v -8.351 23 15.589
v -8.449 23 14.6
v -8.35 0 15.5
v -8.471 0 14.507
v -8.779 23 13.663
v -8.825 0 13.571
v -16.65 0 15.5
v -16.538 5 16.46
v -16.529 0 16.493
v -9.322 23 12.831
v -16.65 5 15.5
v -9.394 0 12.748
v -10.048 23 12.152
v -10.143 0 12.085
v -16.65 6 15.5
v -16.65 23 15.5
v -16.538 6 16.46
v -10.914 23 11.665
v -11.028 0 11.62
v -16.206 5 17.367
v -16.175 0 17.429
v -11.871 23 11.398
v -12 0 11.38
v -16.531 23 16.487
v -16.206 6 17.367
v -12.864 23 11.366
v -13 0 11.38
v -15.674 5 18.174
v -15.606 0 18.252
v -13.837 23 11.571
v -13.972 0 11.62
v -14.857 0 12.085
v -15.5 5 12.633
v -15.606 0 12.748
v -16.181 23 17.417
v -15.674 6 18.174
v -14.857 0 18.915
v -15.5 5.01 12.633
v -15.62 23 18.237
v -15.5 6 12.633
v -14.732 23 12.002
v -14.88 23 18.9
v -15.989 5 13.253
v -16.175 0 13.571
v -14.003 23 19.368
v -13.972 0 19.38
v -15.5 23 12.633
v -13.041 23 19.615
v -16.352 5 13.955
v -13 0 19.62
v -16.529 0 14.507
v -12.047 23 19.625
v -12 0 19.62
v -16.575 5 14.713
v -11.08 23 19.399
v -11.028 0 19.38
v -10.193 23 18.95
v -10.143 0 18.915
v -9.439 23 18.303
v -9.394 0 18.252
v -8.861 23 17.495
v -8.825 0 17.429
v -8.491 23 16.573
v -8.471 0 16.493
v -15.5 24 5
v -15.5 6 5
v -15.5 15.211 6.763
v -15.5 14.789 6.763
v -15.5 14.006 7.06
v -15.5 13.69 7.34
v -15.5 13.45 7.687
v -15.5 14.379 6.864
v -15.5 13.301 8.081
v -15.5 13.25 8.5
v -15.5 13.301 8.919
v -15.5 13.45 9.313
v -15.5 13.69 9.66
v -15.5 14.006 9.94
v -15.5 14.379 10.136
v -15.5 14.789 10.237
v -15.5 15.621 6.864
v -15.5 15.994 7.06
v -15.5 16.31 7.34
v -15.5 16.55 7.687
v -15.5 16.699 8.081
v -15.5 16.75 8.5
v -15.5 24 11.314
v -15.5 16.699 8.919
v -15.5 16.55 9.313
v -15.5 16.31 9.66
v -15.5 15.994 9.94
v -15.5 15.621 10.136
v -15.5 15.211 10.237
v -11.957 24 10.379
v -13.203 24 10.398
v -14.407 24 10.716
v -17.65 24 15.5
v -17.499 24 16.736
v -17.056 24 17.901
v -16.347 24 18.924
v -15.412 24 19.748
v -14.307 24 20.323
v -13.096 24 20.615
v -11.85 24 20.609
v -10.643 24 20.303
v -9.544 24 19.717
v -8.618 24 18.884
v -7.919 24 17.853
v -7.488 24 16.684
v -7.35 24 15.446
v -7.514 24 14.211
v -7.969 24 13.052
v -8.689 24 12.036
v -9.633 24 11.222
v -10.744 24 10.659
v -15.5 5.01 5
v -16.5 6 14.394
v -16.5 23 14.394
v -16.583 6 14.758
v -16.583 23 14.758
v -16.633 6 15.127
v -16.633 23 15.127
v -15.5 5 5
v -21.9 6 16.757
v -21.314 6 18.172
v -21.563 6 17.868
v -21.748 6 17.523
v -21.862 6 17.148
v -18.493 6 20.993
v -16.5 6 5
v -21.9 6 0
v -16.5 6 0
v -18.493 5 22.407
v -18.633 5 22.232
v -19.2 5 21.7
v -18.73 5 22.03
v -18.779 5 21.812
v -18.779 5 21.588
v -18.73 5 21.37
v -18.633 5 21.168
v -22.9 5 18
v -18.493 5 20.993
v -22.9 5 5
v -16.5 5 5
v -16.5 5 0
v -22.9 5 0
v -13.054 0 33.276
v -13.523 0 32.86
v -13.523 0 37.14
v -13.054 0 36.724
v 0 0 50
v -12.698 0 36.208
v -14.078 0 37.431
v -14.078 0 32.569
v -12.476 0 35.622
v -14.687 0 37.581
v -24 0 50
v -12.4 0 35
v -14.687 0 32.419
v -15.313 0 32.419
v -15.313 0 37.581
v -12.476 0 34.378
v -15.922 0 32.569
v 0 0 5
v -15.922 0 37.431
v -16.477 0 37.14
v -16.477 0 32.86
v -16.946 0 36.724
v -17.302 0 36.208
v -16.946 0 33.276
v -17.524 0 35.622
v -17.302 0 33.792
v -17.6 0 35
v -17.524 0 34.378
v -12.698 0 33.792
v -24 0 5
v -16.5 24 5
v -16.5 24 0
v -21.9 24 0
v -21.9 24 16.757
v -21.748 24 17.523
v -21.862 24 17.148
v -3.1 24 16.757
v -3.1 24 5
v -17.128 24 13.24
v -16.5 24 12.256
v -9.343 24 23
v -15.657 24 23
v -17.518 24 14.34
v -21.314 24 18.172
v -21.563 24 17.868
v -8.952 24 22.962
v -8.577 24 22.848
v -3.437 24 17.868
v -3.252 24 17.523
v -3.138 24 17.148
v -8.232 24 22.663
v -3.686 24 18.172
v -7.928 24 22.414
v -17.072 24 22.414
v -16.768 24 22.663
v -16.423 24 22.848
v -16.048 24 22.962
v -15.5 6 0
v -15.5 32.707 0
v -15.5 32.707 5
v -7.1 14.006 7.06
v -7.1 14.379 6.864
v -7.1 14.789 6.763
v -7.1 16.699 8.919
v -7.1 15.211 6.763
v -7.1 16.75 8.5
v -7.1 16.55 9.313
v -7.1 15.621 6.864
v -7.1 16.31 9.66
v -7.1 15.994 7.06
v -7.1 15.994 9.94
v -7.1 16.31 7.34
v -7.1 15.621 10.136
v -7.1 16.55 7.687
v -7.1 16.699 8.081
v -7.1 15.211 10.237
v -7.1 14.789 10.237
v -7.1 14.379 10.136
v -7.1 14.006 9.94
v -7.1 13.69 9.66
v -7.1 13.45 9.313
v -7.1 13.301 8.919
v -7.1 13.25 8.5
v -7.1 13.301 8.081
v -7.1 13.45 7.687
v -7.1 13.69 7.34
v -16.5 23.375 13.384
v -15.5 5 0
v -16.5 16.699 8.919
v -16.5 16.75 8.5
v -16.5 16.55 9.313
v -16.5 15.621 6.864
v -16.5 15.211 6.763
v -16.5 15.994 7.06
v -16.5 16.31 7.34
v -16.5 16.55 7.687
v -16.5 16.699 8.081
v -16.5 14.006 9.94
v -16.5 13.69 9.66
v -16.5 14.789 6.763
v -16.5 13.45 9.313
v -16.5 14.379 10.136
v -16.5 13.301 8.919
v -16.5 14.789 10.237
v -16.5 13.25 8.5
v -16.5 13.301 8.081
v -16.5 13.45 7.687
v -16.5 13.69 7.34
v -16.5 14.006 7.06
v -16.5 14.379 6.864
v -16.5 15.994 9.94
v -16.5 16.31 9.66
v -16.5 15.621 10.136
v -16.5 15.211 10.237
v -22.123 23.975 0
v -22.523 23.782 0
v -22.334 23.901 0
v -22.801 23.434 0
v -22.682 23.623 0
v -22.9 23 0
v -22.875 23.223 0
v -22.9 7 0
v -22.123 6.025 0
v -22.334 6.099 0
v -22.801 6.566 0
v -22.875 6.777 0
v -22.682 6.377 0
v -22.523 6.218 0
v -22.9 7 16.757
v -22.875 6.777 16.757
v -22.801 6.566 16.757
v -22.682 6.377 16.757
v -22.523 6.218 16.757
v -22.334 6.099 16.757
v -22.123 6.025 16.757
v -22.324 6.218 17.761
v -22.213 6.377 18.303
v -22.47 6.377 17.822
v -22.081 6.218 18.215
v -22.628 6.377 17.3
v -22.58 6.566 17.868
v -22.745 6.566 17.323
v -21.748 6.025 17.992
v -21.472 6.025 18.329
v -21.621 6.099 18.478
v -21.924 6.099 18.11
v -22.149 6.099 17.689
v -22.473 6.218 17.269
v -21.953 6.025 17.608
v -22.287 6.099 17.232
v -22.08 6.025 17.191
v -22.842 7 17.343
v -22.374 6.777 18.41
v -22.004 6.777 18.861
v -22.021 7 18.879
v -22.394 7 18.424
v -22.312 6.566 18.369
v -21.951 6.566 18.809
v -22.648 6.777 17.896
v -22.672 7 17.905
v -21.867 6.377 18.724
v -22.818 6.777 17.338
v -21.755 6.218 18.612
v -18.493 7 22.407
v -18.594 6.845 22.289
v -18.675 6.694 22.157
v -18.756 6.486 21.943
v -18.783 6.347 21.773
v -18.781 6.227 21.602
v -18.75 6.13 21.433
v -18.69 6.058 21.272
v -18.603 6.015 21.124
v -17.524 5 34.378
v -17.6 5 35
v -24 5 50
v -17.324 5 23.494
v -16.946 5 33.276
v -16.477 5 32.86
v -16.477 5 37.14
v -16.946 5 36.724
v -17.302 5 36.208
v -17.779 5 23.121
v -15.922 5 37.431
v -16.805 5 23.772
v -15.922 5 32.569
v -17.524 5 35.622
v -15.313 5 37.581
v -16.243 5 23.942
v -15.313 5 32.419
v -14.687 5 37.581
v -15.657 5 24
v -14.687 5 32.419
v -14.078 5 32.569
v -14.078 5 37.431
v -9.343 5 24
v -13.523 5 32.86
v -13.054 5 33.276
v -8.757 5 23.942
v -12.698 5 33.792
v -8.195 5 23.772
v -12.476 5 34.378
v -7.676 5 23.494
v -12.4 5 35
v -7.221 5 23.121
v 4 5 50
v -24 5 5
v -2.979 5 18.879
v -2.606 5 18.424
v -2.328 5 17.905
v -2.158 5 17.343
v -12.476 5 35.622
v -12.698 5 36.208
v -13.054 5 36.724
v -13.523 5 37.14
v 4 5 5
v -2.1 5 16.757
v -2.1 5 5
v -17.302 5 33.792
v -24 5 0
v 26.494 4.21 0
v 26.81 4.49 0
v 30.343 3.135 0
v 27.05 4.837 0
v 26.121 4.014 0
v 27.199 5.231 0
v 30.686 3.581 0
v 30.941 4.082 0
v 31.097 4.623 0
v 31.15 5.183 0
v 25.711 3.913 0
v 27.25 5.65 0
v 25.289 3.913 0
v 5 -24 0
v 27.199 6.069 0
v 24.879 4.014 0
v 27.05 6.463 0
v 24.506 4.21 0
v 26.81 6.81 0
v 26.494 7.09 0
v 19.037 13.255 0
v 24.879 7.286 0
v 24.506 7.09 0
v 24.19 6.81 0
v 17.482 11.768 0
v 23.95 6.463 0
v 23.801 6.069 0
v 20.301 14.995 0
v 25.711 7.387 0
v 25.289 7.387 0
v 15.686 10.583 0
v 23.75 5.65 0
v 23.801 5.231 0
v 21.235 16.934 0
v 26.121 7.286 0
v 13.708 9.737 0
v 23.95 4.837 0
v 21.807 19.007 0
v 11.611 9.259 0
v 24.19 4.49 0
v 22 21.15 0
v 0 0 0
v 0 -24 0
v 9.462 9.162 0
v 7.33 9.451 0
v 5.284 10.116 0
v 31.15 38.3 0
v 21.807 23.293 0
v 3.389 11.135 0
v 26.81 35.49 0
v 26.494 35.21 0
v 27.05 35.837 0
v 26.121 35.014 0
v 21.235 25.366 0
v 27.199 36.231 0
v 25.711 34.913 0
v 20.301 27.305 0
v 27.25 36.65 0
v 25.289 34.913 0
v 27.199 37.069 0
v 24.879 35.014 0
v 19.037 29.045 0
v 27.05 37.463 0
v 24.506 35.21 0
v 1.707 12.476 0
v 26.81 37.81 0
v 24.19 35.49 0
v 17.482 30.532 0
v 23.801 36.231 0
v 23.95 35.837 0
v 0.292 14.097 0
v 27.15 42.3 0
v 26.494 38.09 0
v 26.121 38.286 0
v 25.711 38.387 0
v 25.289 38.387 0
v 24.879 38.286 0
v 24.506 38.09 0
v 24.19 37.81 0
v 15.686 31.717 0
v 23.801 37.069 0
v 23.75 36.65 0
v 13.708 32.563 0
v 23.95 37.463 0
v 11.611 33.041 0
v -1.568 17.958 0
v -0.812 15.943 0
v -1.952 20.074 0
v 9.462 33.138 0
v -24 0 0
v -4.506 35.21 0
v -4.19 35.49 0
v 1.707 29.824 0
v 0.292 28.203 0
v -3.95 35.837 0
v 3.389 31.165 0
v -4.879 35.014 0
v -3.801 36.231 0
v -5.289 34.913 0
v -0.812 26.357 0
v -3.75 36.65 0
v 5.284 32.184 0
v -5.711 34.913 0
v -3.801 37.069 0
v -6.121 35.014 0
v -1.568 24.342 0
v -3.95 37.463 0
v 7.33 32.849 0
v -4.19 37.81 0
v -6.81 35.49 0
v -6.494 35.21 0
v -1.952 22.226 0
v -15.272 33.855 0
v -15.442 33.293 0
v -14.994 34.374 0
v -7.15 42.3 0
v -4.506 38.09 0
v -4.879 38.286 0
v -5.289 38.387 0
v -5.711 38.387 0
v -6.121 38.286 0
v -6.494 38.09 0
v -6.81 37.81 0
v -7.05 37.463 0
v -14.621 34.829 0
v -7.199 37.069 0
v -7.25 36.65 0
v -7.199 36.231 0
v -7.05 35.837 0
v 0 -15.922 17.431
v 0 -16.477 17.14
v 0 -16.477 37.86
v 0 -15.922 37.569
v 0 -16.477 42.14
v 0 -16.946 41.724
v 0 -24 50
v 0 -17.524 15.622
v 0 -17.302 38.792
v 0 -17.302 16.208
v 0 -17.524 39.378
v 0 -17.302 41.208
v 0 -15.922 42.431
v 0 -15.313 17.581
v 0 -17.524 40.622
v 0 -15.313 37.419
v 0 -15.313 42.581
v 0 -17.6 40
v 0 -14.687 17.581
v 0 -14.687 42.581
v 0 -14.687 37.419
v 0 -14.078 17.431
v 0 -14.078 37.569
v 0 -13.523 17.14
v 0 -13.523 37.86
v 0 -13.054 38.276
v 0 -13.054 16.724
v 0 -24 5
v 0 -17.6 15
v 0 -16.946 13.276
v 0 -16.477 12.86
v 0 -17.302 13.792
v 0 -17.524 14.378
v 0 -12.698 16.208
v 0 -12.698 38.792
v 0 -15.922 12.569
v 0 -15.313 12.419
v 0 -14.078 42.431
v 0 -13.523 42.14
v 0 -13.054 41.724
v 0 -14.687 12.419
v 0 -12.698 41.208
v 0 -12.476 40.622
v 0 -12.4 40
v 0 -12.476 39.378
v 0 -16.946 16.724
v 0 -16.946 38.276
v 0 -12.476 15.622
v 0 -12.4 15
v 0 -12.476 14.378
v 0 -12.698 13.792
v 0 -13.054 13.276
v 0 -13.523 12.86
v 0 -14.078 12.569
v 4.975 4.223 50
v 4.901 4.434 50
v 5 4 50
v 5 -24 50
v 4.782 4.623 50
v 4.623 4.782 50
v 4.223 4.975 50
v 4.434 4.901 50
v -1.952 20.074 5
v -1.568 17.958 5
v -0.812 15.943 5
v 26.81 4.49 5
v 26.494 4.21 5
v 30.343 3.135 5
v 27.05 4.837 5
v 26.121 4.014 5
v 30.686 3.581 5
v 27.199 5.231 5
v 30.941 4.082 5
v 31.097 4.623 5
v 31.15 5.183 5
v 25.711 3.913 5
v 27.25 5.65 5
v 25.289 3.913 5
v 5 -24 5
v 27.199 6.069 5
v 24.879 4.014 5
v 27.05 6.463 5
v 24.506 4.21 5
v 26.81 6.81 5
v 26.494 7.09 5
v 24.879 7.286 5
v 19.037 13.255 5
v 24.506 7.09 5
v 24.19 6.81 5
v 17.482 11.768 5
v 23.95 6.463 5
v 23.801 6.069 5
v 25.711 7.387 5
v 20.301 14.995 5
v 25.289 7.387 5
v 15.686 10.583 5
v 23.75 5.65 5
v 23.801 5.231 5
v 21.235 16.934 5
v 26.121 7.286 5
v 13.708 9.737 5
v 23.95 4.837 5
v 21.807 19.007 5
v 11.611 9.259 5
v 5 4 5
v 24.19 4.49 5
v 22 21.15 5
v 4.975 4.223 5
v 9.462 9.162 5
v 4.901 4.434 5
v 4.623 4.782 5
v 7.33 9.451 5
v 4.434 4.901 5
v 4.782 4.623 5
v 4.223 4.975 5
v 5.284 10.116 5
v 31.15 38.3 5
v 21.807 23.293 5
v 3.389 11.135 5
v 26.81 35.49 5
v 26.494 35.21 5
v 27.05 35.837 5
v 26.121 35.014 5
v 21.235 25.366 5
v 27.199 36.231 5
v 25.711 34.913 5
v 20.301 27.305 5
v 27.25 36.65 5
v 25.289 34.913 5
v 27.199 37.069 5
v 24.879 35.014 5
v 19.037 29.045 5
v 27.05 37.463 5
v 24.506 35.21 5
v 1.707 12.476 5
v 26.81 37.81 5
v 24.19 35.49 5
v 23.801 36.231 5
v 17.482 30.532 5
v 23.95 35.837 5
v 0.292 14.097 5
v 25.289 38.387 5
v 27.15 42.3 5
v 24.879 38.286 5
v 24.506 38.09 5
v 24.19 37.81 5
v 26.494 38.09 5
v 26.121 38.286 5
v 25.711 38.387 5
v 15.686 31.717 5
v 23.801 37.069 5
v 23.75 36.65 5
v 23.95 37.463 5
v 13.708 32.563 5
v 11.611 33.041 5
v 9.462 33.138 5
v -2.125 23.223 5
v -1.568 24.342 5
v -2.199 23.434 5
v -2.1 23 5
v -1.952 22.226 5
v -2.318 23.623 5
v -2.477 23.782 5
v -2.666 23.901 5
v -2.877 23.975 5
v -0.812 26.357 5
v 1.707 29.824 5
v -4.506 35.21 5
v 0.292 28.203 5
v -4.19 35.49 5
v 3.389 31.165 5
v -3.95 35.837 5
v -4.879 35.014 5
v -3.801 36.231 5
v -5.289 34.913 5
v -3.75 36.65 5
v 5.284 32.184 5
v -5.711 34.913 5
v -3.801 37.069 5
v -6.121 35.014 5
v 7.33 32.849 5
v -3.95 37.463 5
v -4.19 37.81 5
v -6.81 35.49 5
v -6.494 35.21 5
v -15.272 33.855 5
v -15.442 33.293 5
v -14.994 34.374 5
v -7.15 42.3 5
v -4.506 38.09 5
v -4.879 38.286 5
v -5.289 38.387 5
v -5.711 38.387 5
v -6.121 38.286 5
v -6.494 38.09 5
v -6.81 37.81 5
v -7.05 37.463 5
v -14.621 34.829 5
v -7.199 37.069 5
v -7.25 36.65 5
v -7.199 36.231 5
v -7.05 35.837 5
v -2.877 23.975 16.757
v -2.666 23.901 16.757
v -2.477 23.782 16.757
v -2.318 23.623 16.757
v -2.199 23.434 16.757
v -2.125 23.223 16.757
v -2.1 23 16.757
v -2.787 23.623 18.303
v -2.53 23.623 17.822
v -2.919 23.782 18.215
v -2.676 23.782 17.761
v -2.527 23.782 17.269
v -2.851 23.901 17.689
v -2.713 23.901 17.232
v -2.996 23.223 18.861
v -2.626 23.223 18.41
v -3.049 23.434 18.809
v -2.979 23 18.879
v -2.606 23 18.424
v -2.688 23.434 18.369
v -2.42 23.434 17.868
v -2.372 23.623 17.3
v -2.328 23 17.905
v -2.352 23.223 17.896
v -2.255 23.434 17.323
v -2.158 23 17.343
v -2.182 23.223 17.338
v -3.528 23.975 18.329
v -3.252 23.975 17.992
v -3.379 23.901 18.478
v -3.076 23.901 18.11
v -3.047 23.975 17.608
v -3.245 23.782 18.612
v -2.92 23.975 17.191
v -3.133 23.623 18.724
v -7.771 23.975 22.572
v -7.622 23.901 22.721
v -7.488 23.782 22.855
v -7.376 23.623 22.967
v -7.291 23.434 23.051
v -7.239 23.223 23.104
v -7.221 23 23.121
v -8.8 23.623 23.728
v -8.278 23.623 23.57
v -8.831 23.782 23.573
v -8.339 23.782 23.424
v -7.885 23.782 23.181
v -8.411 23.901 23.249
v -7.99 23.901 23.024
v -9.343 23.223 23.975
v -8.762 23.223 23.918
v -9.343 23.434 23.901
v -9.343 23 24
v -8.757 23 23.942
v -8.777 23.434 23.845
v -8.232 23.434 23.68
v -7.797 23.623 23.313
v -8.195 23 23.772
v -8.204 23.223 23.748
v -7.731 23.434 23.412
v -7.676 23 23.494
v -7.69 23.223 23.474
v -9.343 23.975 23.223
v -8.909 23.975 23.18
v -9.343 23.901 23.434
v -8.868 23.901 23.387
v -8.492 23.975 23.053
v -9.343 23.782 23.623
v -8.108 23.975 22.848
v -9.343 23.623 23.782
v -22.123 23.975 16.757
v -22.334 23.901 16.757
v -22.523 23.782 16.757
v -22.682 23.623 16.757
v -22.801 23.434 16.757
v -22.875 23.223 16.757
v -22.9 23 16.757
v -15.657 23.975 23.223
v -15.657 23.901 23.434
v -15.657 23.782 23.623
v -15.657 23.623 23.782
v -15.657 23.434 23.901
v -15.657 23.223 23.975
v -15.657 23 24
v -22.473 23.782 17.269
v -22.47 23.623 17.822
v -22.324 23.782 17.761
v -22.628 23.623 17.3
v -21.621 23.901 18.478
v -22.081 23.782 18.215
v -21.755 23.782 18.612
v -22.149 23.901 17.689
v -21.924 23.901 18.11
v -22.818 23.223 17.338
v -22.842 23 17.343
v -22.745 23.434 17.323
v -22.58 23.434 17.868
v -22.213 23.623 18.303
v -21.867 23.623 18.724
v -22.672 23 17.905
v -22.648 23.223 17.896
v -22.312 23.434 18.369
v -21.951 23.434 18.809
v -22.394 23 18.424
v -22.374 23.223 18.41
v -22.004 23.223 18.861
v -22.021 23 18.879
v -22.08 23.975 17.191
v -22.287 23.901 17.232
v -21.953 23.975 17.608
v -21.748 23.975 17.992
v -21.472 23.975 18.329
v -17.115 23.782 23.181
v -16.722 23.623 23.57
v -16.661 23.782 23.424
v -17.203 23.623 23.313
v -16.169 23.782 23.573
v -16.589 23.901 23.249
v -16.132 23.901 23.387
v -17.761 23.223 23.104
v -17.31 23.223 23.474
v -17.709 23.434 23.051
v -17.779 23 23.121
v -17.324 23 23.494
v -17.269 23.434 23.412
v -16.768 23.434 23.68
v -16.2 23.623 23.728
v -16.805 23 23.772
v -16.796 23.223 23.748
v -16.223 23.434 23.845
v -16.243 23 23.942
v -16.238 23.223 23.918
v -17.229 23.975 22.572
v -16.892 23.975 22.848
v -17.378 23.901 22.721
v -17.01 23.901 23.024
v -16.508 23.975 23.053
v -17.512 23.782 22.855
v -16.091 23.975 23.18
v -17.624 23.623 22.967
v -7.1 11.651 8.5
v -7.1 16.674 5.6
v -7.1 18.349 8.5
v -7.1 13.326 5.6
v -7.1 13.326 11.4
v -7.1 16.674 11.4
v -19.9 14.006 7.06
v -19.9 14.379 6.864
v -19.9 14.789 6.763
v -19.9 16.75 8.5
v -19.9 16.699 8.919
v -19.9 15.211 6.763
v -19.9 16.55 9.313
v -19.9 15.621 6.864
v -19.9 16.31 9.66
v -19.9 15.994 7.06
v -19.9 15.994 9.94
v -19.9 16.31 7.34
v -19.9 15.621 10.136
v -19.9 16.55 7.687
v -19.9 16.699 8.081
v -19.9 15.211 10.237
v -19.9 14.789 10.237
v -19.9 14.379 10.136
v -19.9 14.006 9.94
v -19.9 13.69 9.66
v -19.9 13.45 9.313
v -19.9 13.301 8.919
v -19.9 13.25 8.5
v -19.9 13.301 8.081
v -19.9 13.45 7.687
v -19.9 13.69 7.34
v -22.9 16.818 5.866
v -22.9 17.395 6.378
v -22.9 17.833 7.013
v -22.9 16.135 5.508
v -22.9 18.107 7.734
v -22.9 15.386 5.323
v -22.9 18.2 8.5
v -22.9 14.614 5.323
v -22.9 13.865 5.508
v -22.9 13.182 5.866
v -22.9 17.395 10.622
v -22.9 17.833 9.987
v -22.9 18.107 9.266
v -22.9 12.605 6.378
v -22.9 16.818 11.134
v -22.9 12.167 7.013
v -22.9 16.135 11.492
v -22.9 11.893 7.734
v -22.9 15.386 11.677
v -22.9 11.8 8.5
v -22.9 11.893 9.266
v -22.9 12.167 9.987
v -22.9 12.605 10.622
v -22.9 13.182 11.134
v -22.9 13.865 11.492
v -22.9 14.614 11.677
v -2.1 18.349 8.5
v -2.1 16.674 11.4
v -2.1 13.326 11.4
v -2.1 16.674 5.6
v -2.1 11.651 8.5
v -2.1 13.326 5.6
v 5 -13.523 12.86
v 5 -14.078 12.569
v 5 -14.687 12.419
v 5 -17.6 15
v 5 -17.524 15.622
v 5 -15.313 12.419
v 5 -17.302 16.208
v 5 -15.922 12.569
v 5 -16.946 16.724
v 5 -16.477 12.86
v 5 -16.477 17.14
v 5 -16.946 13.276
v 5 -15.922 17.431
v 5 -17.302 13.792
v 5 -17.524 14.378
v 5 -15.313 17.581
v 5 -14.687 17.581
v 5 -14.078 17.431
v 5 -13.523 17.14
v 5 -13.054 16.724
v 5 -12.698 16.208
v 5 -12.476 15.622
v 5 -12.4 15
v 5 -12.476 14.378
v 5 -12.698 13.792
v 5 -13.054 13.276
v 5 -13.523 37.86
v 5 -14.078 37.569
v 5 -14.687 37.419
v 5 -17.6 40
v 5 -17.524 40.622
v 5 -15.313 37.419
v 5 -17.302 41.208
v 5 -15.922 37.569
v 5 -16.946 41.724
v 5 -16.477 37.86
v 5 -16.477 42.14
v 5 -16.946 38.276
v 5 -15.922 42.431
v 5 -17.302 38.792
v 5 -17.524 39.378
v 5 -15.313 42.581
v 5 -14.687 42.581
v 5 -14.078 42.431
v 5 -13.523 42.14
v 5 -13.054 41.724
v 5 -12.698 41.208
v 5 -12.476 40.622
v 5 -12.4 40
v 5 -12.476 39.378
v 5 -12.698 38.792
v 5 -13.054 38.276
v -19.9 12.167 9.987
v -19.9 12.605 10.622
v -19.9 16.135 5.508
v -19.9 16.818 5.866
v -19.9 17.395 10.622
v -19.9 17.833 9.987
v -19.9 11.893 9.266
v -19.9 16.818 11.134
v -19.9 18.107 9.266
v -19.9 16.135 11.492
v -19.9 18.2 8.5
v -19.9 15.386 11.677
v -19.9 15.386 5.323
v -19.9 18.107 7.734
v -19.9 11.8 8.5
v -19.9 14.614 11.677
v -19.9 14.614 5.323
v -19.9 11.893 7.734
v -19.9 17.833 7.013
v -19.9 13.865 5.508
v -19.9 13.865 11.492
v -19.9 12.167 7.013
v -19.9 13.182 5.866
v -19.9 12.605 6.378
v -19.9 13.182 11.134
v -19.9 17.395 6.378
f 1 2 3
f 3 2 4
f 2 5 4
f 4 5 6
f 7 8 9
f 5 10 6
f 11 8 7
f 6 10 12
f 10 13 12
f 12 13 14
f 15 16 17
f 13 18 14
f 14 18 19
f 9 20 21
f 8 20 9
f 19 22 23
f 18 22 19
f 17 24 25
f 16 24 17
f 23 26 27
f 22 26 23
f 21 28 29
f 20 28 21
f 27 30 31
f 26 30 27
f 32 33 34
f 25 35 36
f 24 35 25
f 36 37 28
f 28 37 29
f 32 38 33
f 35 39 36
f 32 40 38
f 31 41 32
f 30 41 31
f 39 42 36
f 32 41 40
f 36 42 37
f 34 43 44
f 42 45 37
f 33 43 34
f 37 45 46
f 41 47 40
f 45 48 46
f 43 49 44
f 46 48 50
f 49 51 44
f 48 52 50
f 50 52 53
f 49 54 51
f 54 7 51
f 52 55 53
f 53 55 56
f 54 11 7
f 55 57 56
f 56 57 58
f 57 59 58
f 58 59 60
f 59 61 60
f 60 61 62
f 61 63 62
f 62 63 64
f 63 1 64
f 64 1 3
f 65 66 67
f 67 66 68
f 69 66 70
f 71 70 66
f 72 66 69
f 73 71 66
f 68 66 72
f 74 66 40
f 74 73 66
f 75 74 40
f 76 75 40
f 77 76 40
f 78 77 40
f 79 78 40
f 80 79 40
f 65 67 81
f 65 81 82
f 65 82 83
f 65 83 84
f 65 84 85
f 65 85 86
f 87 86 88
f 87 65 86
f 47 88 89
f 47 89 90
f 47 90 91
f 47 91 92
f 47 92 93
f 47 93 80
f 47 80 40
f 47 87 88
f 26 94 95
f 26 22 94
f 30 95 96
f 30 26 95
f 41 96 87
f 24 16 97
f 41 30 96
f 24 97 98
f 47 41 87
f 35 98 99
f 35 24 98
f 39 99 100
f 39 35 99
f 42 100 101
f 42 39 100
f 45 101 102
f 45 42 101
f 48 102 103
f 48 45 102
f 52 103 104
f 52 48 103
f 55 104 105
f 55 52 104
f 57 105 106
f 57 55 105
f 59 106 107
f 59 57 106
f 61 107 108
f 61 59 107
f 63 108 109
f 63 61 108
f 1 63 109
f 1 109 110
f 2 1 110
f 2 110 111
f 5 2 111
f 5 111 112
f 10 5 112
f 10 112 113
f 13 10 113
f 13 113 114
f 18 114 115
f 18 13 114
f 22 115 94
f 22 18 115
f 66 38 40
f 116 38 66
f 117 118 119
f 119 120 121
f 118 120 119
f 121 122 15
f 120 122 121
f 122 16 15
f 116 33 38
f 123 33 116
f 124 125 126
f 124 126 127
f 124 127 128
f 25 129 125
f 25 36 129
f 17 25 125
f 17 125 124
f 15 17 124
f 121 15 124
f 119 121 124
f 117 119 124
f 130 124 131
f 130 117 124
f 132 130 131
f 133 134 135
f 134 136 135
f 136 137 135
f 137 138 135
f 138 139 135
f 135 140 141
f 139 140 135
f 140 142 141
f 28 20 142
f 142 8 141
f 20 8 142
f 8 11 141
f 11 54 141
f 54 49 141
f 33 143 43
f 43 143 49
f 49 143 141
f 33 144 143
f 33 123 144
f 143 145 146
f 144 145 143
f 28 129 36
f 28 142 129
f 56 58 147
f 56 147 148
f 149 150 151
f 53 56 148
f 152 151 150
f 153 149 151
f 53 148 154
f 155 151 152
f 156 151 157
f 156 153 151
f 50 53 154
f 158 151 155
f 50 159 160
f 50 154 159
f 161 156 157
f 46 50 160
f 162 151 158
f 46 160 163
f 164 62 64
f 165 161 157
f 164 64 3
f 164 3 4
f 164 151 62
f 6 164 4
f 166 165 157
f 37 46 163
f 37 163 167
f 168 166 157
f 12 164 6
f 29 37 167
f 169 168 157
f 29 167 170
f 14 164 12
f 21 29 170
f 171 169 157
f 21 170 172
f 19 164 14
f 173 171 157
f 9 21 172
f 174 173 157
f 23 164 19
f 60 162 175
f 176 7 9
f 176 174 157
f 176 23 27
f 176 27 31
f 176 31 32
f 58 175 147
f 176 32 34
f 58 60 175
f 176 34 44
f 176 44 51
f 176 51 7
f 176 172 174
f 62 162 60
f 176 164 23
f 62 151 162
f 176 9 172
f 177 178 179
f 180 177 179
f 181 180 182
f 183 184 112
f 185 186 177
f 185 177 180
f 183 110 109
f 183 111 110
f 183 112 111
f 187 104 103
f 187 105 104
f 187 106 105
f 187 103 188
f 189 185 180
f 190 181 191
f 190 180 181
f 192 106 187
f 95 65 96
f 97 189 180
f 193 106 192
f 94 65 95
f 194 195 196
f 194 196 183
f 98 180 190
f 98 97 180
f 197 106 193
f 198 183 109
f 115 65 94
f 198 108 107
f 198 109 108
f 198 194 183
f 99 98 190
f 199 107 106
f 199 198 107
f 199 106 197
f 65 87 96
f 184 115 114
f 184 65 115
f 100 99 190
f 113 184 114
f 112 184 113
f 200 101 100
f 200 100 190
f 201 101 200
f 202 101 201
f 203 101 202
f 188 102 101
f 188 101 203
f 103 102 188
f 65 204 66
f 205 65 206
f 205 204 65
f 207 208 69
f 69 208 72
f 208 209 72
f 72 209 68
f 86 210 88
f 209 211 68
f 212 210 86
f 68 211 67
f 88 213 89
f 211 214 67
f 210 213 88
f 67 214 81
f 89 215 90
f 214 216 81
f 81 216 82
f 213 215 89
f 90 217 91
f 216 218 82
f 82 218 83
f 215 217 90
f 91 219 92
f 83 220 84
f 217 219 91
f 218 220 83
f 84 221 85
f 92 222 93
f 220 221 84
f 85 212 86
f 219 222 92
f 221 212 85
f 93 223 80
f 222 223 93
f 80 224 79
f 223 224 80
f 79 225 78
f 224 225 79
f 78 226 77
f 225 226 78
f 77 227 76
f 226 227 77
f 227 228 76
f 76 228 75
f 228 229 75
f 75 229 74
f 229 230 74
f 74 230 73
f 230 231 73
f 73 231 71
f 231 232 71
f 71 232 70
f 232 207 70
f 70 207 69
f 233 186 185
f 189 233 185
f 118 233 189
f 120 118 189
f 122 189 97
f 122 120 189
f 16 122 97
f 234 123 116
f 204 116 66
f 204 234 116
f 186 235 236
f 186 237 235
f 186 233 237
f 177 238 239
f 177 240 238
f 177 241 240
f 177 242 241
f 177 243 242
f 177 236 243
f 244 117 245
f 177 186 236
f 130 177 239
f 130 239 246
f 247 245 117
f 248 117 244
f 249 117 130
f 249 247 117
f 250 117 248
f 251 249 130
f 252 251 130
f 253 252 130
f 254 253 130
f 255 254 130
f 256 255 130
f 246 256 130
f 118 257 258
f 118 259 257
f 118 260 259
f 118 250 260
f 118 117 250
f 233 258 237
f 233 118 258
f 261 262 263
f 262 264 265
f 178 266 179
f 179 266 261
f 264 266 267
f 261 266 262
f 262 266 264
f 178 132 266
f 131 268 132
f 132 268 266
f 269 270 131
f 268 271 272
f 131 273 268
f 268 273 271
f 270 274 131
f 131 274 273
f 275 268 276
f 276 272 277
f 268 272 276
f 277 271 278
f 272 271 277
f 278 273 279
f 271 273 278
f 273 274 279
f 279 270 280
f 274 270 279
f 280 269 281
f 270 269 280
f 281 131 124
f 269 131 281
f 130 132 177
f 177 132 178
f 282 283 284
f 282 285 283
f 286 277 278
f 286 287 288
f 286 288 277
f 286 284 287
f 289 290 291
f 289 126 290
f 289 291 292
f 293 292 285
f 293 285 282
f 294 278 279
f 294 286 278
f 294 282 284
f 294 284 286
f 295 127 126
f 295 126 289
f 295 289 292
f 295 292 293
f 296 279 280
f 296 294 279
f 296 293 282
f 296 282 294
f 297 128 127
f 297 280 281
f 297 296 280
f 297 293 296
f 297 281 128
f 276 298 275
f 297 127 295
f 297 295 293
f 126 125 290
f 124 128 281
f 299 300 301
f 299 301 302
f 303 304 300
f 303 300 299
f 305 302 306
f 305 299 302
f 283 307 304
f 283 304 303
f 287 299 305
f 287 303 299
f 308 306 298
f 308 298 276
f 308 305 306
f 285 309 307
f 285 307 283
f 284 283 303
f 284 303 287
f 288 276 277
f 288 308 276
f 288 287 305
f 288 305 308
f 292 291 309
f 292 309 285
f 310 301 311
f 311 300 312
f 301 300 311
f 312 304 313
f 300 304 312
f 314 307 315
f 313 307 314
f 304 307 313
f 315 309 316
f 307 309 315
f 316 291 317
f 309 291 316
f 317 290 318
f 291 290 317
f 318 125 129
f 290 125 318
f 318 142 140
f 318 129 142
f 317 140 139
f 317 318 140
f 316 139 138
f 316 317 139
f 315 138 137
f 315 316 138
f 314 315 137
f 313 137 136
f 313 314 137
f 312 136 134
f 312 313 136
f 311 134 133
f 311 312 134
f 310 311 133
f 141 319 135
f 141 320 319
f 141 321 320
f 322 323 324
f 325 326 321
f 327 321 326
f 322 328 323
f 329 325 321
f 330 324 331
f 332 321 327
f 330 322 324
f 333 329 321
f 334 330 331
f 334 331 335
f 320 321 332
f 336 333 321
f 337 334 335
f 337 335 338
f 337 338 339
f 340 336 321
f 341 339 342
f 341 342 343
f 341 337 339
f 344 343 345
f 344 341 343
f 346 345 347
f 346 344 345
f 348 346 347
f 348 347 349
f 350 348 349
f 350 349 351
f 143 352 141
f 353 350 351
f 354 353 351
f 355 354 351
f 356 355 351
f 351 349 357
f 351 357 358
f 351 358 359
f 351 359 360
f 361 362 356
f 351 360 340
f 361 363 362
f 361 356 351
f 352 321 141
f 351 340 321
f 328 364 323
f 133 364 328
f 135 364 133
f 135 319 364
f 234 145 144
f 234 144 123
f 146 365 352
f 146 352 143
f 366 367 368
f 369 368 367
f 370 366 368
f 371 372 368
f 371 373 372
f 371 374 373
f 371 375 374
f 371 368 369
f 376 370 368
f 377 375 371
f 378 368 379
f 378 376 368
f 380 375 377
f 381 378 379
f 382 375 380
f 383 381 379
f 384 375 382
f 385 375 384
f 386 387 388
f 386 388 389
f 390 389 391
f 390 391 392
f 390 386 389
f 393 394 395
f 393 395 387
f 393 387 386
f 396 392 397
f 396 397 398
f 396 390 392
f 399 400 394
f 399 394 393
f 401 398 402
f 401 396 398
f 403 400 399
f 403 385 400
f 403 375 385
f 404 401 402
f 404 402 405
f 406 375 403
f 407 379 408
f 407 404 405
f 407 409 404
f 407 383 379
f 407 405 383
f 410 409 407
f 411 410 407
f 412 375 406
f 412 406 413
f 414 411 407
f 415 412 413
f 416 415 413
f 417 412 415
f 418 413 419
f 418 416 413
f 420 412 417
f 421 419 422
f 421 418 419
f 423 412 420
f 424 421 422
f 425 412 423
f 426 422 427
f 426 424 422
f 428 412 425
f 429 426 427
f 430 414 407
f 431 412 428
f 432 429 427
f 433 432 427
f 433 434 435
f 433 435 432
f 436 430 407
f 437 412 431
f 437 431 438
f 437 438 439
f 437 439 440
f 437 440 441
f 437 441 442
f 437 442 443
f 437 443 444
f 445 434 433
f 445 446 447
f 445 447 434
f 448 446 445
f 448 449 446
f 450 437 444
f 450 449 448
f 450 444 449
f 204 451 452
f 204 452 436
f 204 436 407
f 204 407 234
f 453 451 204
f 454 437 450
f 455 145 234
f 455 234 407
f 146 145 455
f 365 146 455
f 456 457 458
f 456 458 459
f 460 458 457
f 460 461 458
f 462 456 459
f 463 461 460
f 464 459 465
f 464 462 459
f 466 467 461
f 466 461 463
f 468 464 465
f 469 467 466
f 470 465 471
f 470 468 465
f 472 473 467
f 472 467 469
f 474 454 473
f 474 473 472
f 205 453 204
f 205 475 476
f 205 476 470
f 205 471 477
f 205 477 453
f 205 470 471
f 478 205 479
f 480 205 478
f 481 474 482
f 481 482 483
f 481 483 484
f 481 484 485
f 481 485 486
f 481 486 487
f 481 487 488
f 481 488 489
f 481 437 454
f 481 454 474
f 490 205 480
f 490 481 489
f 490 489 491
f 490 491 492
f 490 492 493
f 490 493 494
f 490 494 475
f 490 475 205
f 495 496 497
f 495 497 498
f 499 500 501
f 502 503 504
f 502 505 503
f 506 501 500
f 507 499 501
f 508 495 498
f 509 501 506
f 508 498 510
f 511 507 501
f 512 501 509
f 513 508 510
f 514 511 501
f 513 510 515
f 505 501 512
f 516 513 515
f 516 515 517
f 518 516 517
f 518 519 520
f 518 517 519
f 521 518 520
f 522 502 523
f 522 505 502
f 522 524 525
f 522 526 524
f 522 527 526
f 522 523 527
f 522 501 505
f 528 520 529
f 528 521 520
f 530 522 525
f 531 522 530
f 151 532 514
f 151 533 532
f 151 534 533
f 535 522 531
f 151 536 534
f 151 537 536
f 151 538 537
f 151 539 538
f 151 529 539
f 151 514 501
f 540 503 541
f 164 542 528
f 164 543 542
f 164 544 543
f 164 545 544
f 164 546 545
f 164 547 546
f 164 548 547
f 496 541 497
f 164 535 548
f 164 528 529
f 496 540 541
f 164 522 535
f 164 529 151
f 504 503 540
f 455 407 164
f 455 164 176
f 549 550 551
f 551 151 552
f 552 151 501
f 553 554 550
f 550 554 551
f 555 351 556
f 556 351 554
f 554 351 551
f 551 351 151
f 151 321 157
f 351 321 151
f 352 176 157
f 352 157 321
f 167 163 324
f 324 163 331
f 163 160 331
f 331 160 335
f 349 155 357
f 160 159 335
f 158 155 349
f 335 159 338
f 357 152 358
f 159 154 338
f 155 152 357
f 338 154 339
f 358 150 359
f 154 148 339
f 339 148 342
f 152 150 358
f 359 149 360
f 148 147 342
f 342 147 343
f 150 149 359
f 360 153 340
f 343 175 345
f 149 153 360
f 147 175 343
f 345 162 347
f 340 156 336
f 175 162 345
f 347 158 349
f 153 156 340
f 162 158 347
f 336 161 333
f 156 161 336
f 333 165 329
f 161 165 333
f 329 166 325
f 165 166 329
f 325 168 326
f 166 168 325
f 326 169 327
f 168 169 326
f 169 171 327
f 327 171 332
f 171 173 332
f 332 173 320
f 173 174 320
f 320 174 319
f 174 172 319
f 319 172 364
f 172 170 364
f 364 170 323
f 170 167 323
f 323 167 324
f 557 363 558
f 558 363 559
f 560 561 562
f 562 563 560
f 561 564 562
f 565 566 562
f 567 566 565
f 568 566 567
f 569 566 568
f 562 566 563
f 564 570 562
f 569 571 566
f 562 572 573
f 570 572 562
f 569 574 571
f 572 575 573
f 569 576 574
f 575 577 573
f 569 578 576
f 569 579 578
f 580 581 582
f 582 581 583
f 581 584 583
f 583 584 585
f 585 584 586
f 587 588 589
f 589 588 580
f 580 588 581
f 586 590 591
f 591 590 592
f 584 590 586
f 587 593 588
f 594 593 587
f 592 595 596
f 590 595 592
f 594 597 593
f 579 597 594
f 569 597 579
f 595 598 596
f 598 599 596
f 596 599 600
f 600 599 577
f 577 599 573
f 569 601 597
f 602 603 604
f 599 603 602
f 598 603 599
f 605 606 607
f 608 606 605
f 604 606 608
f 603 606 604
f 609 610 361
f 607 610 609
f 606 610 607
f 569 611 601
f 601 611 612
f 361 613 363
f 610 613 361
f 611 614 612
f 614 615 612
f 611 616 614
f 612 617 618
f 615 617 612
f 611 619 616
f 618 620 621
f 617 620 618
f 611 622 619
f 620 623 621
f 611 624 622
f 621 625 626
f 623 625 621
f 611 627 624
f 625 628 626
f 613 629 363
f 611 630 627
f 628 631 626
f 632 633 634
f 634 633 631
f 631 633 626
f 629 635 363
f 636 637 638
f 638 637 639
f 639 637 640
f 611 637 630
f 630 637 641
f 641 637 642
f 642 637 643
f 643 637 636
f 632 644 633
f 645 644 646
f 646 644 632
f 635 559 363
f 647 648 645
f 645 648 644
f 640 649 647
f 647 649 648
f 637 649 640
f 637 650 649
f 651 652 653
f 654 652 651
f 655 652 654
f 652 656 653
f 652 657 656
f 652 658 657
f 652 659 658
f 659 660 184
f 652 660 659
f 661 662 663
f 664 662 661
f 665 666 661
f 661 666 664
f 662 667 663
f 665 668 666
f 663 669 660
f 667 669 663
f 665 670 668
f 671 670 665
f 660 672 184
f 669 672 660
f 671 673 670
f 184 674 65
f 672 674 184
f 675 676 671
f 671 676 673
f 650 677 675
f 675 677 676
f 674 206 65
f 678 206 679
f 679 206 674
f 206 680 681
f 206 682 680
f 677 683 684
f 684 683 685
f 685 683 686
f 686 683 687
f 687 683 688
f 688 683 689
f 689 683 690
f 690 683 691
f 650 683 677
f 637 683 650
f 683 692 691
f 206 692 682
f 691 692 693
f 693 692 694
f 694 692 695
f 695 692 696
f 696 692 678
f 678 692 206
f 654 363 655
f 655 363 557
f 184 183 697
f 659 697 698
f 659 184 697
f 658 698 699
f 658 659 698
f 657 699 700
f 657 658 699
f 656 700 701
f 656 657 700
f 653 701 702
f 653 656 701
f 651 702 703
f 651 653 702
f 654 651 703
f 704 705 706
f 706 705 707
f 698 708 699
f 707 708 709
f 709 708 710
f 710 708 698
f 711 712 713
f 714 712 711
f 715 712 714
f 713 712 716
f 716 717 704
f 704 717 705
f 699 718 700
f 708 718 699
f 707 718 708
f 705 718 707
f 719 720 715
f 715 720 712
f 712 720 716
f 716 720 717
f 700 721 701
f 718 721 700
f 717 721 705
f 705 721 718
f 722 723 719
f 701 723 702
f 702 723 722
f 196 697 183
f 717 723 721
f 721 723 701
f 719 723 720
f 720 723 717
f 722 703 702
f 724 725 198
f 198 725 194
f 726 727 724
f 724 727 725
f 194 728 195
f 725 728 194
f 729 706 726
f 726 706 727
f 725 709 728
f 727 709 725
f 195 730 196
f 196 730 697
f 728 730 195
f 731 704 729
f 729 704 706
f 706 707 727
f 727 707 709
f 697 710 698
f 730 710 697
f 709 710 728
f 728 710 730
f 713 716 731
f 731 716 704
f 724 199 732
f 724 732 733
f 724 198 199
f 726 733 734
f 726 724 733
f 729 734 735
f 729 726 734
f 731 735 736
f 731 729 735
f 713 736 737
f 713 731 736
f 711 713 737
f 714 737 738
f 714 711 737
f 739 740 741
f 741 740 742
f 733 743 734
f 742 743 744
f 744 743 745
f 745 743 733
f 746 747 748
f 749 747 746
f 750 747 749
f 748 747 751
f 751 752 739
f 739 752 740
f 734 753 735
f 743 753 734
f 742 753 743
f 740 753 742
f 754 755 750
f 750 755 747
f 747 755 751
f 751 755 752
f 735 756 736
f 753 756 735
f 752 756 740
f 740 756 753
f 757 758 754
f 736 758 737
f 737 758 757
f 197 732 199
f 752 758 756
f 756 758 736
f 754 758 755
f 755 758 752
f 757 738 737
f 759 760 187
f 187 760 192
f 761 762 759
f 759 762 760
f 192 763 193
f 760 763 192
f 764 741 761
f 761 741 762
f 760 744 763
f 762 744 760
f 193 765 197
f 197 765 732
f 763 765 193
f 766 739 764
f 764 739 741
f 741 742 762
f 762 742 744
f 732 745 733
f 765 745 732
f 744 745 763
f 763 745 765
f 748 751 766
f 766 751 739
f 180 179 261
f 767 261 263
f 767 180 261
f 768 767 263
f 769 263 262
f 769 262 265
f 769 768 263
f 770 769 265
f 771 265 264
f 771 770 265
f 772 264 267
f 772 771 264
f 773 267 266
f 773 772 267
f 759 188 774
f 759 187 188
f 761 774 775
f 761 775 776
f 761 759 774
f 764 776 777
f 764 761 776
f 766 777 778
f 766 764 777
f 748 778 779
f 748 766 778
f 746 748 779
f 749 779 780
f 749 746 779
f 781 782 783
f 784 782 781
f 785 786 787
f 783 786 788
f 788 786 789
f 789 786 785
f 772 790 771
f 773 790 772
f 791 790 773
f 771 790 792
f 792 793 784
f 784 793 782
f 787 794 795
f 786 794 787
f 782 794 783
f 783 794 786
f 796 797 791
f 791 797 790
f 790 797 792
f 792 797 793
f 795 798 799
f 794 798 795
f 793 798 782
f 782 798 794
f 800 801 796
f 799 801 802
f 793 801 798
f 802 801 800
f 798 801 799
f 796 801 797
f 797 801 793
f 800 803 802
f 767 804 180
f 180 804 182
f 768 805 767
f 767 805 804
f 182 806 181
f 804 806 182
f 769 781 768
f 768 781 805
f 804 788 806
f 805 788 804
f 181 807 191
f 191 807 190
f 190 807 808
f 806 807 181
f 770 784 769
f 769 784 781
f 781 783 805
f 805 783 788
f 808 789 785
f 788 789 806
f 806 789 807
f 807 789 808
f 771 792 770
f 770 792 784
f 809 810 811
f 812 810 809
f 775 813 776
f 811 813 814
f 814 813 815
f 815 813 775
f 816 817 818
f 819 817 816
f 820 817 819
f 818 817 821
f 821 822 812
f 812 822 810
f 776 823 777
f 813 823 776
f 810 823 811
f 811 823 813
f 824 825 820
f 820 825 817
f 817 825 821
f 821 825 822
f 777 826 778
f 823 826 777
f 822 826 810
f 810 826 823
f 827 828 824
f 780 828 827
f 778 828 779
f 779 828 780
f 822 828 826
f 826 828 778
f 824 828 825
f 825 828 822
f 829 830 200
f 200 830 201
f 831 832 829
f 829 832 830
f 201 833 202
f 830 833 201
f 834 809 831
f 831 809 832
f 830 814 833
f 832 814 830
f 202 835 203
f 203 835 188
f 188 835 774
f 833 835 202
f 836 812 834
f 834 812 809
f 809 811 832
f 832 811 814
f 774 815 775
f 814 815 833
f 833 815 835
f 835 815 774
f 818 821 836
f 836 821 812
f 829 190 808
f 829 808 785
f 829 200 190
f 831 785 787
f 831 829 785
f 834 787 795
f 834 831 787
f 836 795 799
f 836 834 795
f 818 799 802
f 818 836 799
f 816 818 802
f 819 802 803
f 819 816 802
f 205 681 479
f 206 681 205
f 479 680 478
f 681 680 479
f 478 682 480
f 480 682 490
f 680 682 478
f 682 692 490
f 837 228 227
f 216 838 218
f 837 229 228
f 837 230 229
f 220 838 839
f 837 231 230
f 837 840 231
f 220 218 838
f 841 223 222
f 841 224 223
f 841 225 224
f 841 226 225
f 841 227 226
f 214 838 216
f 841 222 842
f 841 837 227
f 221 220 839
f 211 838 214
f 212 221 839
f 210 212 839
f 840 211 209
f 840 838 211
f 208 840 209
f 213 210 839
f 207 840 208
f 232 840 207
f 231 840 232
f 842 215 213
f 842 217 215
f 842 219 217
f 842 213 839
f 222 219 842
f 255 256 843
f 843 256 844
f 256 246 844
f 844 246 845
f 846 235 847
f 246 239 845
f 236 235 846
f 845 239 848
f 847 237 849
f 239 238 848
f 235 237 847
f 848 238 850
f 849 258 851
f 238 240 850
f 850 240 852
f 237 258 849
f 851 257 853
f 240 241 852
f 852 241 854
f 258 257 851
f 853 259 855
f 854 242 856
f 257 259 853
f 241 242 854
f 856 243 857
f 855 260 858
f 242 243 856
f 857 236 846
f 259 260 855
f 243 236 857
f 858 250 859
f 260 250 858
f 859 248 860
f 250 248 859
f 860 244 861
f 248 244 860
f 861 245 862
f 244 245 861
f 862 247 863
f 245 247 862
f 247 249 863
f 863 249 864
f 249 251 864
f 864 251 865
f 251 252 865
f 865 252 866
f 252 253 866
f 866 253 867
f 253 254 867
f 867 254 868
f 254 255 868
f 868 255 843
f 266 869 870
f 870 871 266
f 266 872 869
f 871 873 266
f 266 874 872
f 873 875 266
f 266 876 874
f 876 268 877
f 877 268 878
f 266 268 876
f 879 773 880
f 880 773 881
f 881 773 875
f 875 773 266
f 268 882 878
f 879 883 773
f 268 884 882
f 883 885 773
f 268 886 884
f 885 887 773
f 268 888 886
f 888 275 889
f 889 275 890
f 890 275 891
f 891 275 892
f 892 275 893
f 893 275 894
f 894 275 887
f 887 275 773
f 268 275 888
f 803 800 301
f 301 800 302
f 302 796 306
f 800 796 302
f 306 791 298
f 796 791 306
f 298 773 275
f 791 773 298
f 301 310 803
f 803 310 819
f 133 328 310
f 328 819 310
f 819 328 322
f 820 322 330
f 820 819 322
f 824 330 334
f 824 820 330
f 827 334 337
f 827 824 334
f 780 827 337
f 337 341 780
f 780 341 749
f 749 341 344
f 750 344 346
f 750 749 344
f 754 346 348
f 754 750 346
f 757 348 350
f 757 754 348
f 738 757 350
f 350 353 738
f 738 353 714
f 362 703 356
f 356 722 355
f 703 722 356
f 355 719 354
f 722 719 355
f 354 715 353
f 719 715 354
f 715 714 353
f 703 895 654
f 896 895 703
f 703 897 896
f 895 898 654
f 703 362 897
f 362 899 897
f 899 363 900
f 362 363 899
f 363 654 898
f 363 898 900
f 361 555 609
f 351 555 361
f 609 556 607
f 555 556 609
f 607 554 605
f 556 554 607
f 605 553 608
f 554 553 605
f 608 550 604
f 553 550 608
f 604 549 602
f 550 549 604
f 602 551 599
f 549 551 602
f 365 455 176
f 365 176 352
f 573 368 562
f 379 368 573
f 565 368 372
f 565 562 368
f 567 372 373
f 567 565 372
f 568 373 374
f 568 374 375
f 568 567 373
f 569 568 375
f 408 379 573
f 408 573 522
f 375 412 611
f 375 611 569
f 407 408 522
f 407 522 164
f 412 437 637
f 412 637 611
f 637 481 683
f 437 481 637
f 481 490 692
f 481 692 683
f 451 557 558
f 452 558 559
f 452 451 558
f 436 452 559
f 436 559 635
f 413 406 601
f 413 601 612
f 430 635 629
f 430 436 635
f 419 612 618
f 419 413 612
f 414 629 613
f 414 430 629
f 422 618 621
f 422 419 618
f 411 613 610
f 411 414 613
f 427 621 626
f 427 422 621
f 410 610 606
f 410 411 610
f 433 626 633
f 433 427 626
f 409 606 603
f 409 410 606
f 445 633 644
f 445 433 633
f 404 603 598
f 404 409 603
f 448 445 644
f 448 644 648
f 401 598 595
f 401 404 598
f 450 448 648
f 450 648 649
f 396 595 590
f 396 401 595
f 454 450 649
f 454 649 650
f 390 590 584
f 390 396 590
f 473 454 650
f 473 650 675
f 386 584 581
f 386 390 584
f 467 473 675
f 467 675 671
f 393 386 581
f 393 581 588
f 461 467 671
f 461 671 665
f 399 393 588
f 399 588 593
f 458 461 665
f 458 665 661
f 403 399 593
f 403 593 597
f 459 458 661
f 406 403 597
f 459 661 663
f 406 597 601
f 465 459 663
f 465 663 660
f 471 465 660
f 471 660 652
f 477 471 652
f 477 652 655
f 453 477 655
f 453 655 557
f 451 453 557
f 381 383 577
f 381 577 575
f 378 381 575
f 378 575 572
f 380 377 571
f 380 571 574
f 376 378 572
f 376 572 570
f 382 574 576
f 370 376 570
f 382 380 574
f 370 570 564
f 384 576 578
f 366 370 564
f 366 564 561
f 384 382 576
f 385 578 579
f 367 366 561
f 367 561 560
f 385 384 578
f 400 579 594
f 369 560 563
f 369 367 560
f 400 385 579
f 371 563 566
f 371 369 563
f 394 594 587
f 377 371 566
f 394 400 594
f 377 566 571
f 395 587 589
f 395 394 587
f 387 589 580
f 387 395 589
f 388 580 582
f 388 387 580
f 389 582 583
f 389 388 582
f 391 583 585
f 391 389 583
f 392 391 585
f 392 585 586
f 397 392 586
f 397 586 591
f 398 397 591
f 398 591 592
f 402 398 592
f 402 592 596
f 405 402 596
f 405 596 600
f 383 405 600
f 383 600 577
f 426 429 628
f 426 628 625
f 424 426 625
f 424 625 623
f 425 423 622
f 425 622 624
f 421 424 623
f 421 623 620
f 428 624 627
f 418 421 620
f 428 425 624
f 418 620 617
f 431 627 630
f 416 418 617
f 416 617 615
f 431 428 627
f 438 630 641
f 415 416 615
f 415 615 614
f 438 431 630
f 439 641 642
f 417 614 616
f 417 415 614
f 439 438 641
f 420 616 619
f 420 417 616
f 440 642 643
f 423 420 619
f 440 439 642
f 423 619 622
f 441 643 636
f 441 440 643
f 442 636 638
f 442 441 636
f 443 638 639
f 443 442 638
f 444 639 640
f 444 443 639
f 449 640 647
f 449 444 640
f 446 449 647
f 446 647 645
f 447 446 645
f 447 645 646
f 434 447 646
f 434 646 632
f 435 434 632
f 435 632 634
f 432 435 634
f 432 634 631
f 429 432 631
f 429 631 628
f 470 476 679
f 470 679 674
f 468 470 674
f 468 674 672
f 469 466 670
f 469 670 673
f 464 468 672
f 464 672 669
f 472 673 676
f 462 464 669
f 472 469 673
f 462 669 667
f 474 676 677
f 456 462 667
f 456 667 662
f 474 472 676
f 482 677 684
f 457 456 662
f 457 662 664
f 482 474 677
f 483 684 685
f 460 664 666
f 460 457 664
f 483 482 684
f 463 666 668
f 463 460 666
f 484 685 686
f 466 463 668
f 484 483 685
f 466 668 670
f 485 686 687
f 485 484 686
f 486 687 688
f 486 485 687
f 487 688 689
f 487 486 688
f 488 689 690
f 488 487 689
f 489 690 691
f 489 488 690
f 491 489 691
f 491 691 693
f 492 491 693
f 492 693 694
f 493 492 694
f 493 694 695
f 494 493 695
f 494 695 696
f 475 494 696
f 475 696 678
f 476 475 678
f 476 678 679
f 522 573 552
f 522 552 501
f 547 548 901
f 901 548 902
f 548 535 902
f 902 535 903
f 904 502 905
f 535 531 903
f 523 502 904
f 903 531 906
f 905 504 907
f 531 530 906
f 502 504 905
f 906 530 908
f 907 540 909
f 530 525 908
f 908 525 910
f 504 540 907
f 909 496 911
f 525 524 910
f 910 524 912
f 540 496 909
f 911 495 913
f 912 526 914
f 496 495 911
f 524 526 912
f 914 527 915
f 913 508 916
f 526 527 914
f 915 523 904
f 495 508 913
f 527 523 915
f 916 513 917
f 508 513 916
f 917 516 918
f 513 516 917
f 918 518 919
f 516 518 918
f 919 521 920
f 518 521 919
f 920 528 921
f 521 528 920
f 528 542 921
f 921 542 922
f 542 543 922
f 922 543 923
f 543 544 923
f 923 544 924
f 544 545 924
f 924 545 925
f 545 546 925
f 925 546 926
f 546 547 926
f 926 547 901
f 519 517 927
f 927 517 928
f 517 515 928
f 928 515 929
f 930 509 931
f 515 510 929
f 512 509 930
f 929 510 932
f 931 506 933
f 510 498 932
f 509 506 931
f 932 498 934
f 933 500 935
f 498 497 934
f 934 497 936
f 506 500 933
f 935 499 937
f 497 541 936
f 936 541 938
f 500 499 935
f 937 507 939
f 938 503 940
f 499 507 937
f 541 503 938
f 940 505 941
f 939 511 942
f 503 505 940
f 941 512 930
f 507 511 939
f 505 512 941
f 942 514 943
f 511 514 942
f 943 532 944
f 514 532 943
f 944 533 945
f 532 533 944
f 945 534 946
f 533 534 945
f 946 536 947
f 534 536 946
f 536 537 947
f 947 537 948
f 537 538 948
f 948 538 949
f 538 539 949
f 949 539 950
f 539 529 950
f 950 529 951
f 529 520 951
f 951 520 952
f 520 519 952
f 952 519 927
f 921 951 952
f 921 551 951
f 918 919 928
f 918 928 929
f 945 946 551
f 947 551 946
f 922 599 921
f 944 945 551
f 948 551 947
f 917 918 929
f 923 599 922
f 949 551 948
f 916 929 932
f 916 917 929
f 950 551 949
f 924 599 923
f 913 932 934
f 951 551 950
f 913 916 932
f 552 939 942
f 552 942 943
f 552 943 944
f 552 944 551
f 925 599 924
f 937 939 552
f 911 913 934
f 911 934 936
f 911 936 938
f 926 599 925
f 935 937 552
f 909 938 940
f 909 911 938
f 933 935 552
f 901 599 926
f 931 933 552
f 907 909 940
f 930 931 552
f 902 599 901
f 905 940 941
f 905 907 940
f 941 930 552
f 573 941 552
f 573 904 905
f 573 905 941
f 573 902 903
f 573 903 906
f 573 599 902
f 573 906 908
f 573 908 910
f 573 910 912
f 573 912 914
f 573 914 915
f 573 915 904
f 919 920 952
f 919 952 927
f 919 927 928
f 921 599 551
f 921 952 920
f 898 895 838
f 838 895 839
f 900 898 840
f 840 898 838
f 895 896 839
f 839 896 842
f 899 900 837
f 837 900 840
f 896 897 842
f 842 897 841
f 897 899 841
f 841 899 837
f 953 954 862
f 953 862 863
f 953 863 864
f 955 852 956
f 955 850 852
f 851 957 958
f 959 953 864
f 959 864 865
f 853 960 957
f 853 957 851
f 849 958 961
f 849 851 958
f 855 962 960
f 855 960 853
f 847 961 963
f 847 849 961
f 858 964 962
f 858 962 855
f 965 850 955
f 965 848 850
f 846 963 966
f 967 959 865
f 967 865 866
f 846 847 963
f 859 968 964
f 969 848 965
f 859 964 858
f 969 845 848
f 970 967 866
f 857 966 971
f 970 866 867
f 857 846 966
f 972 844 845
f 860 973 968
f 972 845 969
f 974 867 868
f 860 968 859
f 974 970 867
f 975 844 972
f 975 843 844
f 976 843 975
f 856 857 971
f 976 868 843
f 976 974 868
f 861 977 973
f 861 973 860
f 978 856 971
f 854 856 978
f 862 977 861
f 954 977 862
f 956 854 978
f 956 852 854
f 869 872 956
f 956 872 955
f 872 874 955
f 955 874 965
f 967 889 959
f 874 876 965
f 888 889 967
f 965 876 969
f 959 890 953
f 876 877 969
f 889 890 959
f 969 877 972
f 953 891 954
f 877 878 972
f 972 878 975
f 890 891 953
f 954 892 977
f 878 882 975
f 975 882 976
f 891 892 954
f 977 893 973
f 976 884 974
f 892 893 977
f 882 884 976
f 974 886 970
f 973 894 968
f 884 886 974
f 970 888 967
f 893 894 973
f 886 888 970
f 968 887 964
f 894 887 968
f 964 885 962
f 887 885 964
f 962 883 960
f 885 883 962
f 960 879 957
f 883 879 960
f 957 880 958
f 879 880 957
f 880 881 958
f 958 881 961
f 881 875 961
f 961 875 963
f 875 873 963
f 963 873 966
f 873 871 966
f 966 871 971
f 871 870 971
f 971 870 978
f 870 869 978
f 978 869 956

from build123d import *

# Parameters (mm, degrees)
SKETCH_R        = 12
SKETCH_R_2      = 1.75
PAD_DEPTH       = 5
PAD001_DEPTH    = 45
PAD002_DEPTH    = 19
POCKET_DEPTH    = 1
SKETCH004_R     = 4.15
POCKET001_DEPTH = 48.001
SKETCH005_R     = 2.6
POCKET002_DEPTH = 42.301
SKETCH006_R     = 2.6
POCKET003_DEPTH = 5
SKETCH008_R     = 1.75
POCKET004_DEPTH = 21.901
POCKET005_DEPTH = 5
SKETCH010_R     = 3.2
POCKET006_DEPTH = 3
SKETCH011_W     = 1
SKETCH011_H     = 10
POCKET007_DEPTH = 18.99
FILLET_R        = 3
FILLET001_R     = 1
CHAMFER_SIZE    = 1


with BuildPart() as part:
    # Sketch → Pad (new body)
    with BuildSketch(Plane.XY):
        Polygon((0, 0), (-24, 0), (-24, 5), (-15.5, 5), (-15.5, 33.95), (-7.15, 42.3), (27.15, 42.3), (31.15, 38.3), (31.15, 4), (5, -24), (0, -24), align=None)
        with Locations((10, 21.15)):
            Circle(SKETCH_R, mode=Mode.SUBTRACT)
        with Locations((-5.5, 36.65)):
            Circle(SKETCH_R_2, mode=Mode.SUBTRACT)
        with Locations((25.5, 36.65)):
            Circle(SKETCH_R_2, mode=Mode.SUBTRACT)
        with Locations((25.5, 5.65)):
            Circle(SKETCH_R_2, mode=Mode.SUBTRACT)
    extrude(amount=PAD_DEPTH)

    # Sketch001 (on Face17 of Pad) → Pad001 (join)
    with BuildSketch(Plane.XY.offset(5)):
        Polygon((0, 0), (-24, 0), (-24, 5), (5, 5), (5, -24), (0, -24), align=None)
    extrude(amount=PAD001_DEPTH)

    # Sketch002 (on Face19 of Pad001) → Pad002 (join)
    with BuildSketch(Plane(origin=(0, 5, 0), x_dir=(-1, 0, 0), z_dir=(0, 1, 0))):
        Polygon((22.9, 0), (22.9, 18), (16.9, 24), (8.1, 24), (2.1, 18), (2.1, 5), (16.5, 5), (16.5, 0), align=None)
    extrude(amount=PAD002_DEPTH)

    # Sketch003 (on Face25 of Pad002) → Pocket (cut)
    with BuildSketch(Plane(origin=(0, 5, 0), x_dir=(-1, 0, 0), z_dir=(0, 1, 0))):
        Polygon((15.5, 0), (15.5, 18), (19.2, 21.7), (22.9, 18), (22.9, 0), align=None)
    extrude(amount=POCKET_DEPTH, mode=Mode.SUBTRACT)

    # Sketch004 (on Face35 of Pocket) → Pocket001 (cut, through all)
    with BuildSketch(Plane(origin=(0, 24, 0), x_dir=(-1, 0, 0), z_dir=(0, 1, 0))):
        with Locations((12.5, 15.5)):
            Circle(SKETCH004_R)
    extrude(amount=-POCKET001_DEPTH, mode=Mode.SUBTRACT)

    # Sketch005 (on Face4 of Pocket001) → Pocket002 (cut, through all)
    with BuildSketch(Plane.XZ):
        with Locations((-15, 35)):
            Circle(SKETCH005_R)
    extrude(amount=-POCKET002_DEPTH, mode=Mode.SUBTRACT)

    # Sketch006 (on Face7 of Pocket002) → Pocket003 (cut)
    with BuildSketch(Plane(origin=(0, 0, 0), x_dir=(0, -1, 0), z_dir=(-1, 0, 0))):
        with Locations((15, 40)):
            Circle(SKETCH006_R)
        with Locations((15, 15)):
            Circle(SKETCH006_R)
    extrude(amount=-POCKET003_DEPTH, mode=Mode.SUBTRACT)

    # Sketch008 (on Face39 of Pocket003) → Pocket004 (cut, through all)
    with BuildSketch(Plane.YZ.offset(-2.1)):
        with Locations((15, 8.5)):
            Circle(SKETCH008_R)
    extrude(amount=-POCKET004_DEPTH, mode=Mode.SUBTRACT)

    # Sketch009 (on Face39 of Pocket004) → Pocket005 (cut)
    with BuildSketch(Plane.YZ.offset(-2.1)):
        Polygon((16.674316, 5.6), (18.348632, 8.5), (16.674316, 11.4), (13.325684, 11.4), (11.651368, 8.5), (13.325684, 5.6), align=None)
    extrude(amount=-POCKET005_DEPTH, mode=Mode.SUBTRACT)

    # Sketch010 (on Face42 of Pocket005) → Pocket006 (cut)
    with BuildSketch(Plane(origin=(-22.9, 0, 0), x_dir=(0, -1, 0), z_dir=(-1, 0, 0))):
        with Locations((-15, 8.5)):
            Circle(SKETCH010_R)
    extrude(amount=-POCKET006_DEPTH, mode=Mode.SUBTRACT)

    # Sketch011 (on Face35 of Pocket006) → Pocket007 (cut)
    with BuildSketch(Plane(origin=(0, 24, 0), x_dir=(-1, 0, 0), z_dir=(0, 1, 0))):
        with Locations((16, 10)):
            Rectangle(SKETCH011_W, SKETCH011_H)
    extrude(amount=-POCKET007_DEPTH, mode=Mode.SUBTRACT)

    # Fillet
    fillet_edges = [part.edges().sort_by_distance(p)[0] for p in [
        (31.15, 4, 2.5),
        (-15.5, 33.95, 2.5),
        (-2.1, 14.5, 18),
        (-8.1, 14.5, 24),
        (-16.9, 14.5, 24),
        (-22.9, 15, 18),
    ]]
    fillet(fillet_edges, radius=FILLET_R)

    # Fillet001
    fillet001_edges = [part.edges().sort_by_distance(p)[0] for p in [
        (5, 5, 27.5),
        (-2.1, 24, 10.87868),
        (-19.2, 5.5, 21.7),
        (-20.61066, 6, 20.28934),
    ]]
    fillet(fillet001_edges, radius=FILLET001_R)

    # Chamfer
    chamfer_edges = [part.edges().sort_by_distance(p)[0] for p in [
        (-8.648215, 24, 17.044749),
    ]]
    chamfer(chamfer_edges, length=CHAMFER_SIZE)


solid = part.part
